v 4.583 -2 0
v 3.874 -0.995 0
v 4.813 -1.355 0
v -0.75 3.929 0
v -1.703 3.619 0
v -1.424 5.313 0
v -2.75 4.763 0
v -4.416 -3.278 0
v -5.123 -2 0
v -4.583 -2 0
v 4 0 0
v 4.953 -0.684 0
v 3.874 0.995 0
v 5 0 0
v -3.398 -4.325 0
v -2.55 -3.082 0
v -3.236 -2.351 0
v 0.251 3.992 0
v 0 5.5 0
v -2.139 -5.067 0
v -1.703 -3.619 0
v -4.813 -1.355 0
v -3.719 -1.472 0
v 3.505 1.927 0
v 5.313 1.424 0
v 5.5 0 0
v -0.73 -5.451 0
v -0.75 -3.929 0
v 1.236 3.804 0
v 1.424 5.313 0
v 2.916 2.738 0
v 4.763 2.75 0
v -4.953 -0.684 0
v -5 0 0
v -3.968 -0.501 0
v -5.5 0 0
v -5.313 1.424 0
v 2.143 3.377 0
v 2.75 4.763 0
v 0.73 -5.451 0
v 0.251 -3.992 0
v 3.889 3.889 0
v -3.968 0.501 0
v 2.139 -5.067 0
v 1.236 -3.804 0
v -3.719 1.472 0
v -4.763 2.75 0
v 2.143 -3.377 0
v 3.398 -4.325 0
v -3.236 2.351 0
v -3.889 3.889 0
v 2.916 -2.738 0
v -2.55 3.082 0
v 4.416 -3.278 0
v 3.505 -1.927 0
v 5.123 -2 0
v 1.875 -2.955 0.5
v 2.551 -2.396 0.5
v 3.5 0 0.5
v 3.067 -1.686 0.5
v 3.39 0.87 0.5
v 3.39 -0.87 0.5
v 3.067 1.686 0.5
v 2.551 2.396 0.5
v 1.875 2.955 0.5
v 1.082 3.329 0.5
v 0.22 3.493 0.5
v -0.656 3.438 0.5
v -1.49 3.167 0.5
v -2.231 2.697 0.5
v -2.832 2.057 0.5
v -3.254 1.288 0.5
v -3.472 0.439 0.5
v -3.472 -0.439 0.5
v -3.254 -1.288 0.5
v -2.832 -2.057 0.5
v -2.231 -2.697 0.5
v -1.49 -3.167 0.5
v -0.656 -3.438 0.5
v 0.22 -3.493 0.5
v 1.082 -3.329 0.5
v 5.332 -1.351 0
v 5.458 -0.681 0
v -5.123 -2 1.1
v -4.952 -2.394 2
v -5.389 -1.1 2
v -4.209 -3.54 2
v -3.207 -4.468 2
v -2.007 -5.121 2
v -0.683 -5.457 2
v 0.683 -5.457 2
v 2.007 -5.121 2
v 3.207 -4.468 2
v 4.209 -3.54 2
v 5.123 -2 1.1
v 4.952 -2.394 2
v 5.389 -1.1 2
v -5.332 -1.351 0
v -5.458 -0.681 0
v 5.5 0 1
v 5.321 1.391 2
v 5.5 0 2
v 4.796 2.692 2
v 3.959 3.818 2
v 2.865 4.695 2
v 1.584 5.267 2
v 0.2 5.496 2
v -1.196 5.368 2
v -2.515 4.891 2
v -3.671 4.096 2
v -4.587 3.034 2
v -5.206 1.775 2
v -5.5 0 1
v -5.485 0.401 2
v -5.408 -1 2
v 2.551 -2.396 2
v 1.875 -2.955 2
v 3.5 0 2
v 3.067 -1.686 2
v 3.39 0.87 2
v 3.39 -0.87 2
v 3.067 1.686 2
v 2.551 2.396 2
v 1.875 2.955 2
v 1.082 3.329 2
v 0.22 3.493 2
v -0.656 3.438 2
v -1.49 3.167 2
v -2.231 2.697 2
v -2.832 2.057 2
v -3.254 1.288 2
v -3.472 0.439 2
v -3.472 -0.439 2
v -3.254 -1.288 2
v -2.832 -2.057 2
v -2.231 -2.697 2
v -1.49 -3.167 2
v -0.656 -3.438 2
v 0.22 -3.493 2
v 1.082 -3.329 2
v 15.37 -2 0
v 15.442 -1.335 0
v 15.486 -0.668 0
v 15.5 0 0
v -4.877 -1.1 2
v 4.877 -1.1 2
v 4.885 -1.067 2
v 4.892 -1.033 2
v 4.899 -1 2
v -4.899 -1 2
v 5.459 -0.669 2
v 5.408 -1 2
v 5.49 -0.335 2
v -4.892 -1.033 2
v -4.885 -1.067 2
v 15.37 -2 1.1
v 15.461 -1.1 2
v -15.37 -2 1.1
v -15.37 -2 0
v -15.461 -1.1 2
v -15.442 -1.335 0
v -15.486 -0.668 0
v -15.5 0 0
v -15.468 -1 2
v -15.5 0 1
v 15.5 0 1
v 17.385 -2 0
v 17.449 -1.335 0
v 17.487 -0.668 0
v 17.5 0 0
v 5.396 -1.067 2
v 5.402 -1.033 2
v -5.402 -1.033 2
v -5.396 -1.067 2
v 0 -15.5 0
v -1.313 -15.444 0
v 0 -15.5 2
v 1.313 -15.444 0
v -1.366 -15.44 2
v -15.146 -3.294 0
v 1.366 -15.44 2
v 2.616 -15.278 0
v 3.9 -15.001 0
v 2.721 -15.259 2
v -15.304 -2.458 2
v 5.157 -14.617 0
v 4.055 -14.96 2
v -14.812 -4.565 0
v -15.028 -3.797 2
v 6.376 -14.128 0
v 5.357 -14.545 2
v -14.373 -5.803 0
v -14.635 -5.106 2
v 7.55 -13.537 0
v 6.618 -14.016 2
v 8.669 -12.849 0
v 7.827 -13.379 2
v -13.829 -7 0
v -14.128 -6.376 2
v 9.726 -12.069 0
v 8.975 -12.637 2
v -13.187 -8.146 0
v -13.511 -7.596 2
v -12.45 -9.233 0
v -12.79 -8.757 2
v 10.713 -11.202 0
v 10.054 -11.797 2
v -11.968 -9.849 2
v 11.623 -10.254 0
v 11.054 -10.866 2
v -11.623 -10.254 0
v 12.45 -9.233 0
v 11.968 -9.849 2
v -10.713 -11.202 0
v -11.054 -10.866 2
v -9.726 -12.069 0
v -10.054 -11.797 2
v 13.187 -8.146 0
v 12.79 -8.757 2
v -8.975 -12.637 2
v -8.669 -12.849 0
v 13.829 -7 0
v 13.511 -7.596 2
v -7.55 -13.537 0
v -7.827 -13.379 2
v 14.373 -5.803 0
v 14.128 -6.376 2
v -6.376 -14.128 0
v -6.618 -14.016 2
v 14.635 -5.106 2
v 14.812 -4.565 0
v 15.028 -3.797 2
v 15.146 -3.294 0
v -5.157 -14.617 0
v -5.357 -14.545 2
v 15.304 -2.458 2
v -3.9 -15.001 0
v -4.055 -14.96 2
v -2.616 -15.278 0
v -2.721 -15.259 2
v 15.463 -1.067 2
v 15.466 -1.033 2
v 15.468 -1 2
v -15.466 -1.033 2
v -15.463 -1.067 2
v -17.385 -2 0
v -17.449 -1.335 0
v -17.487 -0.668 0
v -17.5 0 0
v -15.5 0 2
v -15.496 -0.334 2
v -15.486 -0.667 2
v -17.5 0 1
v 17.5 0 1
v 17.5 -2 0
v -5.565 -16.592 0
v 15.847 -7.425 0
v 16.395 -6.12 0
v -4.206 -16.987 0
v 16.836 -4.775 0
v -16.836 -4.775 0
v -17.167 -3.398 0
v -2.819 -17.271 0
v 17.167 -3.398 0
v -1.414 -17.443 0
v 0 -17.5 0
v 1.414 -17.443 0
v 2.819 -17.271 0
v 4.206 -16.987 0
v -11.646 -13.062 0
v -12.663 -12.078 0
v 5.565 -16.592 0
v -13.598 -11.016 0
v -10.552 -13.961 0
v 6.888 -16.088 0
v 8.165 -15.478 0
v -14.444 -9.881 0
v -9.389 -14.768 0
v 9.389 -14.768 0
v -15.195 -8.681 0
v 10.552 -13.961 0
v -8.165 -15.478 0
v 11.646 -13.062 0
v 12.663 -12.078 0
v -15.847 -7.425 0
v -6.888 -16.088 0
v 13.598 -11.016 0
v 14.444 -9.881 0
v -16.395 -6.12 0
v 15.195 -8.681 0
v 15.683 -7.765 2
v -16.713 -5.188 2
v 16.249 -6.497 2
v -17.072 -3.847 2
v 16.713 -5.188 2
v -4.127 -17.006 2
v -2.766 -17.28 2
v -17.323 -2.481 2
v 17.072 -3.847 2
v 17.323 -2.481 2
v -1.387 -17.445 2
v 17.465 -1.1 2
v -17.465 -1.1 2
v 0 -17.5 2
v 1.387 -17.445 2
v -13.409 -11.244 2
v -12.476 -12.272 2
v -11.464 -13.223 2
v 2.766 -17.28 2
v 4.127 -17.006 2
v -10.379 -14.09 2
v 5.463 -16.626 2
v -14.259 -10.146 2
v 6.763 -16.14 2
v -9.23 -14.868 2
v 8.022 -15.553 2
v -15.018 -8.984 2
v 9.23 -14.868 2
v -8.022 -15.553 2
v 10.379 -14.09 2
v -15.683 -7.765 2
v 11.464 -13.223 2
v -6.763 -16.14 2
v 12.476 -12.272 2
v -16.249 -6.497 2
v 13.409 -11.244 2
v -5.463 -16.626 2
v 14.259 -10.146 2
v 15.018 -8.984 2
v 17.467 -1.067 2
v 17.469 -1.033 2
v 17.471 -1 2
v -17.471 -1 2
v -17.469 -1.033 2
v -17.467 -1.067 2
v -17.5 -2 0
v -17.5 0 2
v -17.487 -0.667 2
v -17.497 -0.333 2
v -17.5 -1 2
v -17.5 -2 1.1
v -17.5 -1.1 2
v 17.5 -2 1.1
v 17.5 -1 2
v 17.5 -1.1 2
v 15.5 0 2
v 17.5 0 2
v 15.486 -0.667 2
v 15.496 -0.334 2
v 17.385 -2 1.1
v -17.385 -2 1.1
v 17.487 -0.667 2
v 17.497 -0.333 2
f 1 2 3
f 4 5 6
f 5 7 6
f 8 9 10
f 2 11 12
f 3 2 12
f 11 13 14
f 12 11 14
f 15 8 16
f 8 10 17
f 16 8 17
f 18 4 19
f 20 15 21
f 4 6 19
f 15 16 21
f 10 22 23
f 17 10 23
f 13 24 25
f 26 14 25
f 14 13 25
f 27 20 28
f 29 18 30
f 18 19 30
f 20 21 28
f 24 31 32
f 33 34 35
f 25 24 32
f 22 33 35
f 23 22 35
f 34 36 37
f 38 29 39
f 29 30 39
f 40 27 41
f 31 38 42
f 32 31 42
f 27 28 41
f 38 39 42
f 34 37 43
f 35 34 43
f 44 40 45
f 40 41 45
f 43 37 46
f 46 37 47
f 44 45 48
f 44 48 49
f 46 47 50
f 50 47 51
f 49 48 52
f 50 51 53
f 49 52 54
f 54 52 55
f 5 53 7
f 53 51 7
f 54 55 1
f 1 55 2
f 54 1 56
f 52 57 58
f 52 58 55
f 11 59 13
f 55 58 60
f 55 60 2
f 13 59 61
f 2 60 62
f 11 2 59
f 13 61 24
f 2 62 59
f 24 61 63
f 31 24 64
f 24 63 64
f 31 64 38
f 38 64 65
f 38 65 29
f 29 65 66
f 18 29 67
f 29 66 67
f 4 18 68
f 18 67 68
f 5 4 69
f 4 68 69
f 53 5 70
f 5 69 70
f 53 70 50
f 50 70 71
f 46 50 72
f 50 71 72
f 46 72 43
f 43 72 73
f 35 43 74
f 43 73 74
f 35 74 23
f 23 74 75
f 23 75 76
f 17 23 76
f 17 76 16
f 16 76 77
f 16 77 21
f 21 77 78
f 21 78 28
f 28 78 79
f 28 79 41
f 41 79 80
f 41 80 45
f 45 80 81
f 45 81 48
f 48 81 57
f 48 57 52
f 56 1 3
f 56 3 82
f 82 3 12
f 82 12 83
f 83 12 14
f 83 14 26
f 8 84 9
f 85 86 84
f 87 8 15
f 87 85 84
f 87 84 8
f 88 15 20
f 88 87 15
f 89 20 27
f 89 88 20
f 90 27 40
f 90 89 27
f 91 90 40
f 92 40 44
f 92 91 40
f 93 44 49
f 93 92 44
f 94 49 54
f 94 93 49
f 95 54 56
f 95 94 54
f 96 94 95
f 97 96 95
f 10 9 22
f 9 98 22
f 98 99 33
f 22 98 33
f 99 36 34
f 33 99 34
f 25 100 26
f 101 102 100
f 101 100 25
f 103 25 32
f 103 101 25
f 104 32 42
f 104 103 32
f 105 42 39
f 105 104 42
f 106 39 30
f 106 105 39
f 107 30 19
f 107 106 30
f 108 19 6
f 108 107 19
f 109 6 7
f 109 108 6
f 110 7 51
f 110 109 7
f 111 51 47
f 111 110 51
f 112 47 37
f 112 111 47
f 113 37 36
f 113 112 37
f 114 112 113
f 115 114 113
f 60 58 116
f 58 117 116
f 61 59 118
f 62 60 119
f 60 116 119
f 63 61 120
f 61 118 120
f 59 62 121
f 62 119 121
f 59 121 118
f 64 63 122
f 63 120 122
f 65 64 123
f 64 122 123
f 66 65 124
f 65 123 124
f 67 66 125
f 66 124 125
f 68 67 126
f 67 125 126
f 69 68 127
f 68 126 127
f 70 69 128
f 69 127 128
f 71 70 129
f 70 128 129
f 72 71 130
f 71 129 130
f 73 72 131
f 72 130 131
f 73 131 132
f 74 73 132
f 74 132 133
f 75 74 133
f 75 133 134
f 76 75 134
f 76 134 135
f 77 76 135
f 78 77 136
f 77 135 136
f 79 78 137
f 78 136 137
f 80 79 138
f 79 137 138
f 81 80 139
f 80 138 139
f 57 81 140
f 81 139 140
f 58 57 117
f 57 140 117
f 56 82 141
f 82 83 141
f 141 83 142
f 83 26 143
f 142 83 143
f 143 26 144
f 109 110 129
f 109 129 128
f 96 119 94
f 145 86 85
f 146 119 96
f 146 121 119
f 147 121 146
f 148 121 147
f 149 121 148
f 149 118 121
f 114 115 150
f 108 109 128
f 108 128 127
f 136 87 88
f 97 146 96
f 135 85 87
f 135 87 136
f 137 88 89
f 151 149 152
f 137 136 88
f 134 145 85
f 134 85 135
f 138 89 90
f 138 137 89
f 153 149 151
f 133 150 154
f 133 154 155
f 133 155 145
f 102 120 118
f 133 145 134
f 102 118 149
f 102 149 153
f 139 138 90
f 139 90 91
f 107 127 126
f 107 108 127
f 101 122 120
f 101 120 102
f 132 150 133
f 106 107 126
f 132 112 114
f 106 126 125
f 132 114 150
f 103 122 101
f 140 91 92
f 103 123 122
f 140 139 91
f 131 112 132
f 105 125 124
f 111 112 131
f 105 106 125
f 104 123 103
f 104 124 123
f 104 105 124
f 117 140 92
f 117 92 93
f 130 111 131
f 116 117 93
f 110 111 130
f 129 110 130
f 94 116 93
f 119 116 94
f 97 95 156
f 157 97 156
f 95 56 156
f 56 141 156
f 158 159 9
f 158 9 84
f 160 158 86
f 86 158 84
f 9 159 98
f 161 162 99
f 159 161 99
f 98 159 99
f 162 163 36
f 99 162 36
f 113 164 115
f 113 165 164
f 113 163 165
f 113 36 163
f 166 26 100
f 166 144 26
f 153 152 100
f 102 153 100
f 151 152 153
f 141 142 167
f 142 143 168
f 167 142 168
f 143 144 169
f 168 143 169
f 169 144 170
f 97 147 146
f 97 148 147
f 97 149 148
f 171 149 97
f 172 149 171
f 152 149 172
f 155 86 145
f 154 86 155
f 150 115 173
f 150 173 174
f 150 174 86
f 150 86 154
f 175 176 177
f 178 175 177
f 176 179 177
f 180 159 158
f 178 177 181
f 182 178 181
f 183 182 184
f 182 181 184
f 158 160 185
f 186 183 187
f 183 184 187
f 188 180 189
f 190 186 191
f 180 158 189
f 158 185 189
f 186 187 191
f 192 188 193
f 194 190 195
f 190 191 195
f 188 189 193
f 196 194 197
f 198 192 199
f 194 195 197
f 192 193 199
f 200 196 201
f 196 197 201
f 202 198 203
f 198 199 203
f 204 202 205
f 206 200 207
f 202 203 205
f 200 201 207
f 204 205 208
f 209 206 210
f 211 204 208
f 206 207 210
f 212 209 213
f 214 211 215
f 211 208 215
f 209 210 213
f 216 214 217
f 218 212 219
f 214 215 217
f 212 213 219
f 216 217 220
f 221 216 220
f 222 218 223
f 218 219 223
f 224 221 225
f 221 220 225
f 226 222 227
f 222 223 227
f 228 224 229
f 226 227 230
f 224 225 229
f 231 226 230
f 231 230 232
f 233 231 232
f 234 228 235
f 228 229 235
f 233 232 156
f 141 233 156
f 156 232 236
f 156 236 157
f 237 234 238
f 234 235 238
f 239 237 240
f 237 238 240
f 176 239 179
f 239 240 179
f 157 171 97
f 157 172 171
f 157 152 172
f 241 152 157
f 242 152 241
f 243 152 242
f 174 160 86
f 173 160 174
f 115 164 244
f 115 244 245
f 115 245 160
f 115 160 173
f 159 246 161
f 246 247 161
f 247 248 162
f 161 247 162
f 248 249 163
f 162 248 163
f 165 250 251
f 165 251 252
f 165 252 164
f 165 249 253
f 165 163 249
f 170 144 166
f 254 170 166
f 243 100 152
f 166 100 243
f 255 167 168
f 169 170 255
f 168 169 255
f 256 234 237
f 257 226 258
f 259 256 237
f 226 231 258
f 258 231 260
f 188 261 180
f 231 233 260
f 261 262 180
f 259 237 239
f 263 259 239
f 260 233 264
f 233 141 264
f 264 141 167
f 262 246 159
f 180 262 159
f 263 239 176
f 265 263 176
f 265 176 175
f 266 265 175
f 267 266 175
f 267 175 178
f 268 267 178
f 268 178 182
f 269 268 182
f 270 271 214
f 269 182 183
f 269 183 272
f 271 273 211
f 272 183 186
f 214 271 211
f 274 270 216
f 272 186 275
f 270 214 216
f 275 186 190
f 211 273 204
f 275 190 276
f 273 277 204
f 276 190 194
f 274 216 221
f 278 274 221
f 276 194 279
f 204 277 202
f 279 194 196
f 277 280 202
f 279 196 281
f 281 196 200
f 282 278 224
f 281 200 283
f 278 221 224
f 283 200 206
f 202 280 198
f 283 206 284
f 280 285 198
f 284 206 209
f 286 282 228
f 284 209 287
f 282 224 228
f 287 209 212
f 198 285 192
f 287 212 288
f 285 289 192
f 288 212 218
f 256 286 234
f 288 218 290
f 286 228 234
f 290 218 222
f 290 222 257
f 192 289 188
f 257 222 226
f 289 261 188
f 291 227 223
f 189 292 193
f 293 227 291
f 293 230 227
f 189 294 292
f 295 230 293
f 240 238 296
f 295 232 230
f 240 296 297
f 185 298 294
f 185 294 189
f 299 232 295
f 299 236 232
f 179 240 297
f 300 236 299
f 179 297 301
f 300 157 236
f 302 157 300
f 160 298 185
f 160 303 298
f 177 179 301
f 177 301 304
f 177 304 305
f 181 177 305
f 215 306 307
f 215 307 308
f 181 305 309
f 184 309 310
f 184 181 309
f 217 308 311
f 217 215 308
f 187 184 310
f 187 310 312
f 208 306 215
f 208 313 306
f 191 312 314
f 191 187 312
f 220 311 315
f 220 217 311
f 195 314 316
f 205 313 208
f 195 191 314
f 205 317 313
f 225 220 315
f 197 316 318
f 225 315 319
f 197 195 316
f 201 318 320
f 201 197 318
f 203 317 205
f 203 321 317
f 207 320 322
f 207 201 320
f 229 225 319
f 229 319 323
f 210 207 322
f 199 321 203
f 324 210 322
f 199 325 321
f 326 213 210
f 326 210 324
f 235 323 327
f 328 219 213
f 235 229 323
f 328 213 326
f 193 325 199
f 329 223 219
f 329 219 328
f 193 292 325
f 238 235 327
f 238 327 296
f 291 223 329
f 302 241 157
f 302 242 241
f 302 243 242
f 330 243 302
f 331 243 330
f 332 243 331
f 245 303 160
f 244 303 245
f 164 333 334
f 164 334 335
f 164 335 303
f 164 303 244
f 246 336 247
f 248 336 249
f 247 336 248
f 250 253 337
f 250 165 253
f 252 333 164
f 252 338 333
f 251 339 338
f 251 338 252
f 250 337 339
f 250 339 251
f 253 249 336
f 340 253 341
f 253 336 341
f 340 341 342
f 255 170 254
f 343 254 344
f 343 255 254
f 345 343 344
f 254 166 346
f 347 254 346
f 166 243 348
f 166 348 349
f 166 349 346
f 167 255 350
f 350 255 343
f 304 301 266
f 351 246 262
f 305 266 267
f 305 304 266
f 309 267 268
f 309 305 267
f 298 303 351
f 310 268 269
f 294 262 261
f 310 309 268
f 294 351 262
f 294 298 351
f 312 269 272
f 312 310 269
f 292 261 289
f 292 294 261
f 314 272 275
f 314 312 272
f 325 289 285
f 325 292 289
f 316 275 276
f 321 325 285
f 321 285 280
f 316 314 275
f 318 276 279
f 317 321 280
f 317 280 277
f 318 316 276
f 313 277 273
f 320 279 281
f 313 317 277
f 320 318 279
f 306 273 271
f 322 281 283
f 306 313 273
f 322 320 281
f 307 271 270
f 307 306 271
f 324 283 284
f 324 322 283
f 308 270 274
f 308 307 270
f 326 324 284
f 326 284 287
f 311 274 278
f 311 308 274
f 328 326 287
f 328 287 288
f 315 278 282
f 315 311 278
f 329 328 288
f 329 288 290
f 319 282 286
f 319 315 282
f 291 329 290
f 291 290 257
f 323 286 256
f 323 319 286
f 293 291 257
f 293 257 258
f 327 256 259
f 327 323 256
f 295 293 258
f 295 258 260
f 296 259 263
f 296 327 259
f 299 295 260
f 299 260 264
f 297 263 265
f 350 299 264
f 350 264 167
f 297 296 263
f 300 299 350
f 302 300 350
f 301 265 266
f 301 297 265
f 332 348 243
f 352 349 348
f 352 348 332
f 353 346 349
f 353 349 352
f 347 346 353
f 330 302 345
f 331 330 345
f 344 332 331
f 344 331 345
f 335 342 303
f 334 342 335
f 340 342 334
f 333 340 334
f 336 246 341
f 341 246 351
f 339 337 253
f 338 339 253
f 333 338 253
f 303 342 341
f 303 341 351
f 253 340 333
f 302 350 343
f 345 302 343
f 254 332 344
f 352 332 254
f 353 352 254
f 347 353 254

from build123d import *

# Parameters (mm, degrees)
BOX_W             = 43
BOX_H             = 27
BOX_DEPTH         = 10
CYLINDER001_R     = 15.5
CYLINDER001_DEPTH = 9
CYLINDER002_R     = 17.5
CYLINDER002_DEPTH = 2
CYLINDER_R        = 3.5
CYLINDER_DEPTH    = 10
CYLINDER003_R     = 5.5
CYLINDER003_DEPTH = 2
CYLINDER004_R     = 5
CYLINDER004_DEPTH = 10
BOX001_W          = 35
BOX001_H          = 2
BOX001_DEPTH      = 2
CHAMFER_SIZE      = 1
CHAMFER001_SIZE   = 0.9
CHAMFER002_SIZE   = 1
CHAMFER003_SIZE   = 0.9
CHAMFER004_SIZE   = 0.5


with BuildPart() as cube:
    # Box → Box (new body)
    with BuildSketch(Plane(origin=(-22, 0, -1), x_dir=(1, 0, 0), z_dir=(0, 0, 1))):
        with Locations((21.5, 13.5)):
            Rectangle(BOX_W, BOX_H)
    extrude(amount=BOX_DEPTH)


with BuildPart() as cylinder001:
    # Cylinder001 → Cylinder001 (new body)
    with BuildSketch(Plane.XY.offset(-1)):
        Circle(CYLINDER001_R)
    extrude(amount=CYLINDER001_DEPTH)


with BuildPart() as cut001:
    # Cylinder002 → Cylinder002 (new body)
    with BuildSketch(Plane.XY):
        Circle(CYLINDER002_R)
    extrude(amount=CYLINDER002_DEPTH)

    # Cut: cut Cylinder001
    add(cylinder001.part, mode=Mode.SUBTRACT)

    # Cut001: cut Cube
    add(cube.part, mode=Mode.SUBTRACT)


with BuildPart() as cylinder:
    # Cylinder → Cylinder (new body)
    with BuildSketch(Plane.XY.offset(-3)):
        Circle(CYLINDER_R)
    extrude(amount=CYLINDER_DEPTH)


with BuildPart() as cut002:
    # Cylinder003 → Cylinder003 (new body)
    with BuildSketch(Plane.XY):
        Circle(CYLINDER003_R)
    extrude(amount=CYLINDER003_DEPTH)

    # Cut002: cut Cylinder
    add(cylinder.part, mode=Mode.SUBTRACT)


with BuildPart() as cylinder004:
    # Cylinder004 → Cylinder004 (new body)
    with BuildSketch(Plane.XY.offset(-3)):
        Circle(CYLINDER004_R)
    extrude(amount=CYLINDER004_DEPTH)


with BuildPart() as prop_guard:
    # Box001 → Box001 (new body)
    with BuildSketch(Plane(origin=(-17.5, -2, 0), x_dir=(1, 0, 0), z_dir=(0, 0, 1))):
        with Locations((17.5, 1)):
            Rectangle(BOX001_W, BOX001_H)
    extrude(amount=BOX001_DEPTH)

    # Cut003: cut Cylinder004
    add(cylinder004.part, mode=Mode.SUBTRACT)

    # Chamfer
    chamfer_edges = [prop_guard.edges().sort_by_distance(p)[0] for p in [
        (11.25, 0, 2),
    ]]
    chamfer(chamfer_edges, length=CHAMFER_SIZE)

    # Chamfer001
    chamfer001_edges = [prop_guard.edges().sort_by_distance(p)[0] for p in [
        (11.041288, -2, 2),
    ]]
    chamfer(chamfer001_edges, length=CHAMFER001_SIZE)

    # Chamfer002
    chamfer002_edges = [prop_guard.edges().sort_by_distance(p)[0] for p in [
        (-11.25, 0, 2),
    ]]
    chamfer(chamfer002_edges, length=CHAMFER002_SIZE)

    # Chamfer003
    chamfer003_edges = [prop_guard.edges().sort_by_distance(p)[0] for p in [
        (-11.041288, -2, 2),
    ]]
    chamfer(chamfer003_edges, length=CHAMFER003_SIZE)

    # Fusion: union Cut001, Cut002
    add(cut001.part)
    add(cut002.part)

    # Chamfer004
    chamfer004_edges = [prop_guard.edges().sort_by_distance(p)[0] for p in [
        (-3.5, 0, 0),
    ]]
    chamfer(chamfer004_edges, length=CHAMFER004_SIZE)


solid = prop_guard.part
